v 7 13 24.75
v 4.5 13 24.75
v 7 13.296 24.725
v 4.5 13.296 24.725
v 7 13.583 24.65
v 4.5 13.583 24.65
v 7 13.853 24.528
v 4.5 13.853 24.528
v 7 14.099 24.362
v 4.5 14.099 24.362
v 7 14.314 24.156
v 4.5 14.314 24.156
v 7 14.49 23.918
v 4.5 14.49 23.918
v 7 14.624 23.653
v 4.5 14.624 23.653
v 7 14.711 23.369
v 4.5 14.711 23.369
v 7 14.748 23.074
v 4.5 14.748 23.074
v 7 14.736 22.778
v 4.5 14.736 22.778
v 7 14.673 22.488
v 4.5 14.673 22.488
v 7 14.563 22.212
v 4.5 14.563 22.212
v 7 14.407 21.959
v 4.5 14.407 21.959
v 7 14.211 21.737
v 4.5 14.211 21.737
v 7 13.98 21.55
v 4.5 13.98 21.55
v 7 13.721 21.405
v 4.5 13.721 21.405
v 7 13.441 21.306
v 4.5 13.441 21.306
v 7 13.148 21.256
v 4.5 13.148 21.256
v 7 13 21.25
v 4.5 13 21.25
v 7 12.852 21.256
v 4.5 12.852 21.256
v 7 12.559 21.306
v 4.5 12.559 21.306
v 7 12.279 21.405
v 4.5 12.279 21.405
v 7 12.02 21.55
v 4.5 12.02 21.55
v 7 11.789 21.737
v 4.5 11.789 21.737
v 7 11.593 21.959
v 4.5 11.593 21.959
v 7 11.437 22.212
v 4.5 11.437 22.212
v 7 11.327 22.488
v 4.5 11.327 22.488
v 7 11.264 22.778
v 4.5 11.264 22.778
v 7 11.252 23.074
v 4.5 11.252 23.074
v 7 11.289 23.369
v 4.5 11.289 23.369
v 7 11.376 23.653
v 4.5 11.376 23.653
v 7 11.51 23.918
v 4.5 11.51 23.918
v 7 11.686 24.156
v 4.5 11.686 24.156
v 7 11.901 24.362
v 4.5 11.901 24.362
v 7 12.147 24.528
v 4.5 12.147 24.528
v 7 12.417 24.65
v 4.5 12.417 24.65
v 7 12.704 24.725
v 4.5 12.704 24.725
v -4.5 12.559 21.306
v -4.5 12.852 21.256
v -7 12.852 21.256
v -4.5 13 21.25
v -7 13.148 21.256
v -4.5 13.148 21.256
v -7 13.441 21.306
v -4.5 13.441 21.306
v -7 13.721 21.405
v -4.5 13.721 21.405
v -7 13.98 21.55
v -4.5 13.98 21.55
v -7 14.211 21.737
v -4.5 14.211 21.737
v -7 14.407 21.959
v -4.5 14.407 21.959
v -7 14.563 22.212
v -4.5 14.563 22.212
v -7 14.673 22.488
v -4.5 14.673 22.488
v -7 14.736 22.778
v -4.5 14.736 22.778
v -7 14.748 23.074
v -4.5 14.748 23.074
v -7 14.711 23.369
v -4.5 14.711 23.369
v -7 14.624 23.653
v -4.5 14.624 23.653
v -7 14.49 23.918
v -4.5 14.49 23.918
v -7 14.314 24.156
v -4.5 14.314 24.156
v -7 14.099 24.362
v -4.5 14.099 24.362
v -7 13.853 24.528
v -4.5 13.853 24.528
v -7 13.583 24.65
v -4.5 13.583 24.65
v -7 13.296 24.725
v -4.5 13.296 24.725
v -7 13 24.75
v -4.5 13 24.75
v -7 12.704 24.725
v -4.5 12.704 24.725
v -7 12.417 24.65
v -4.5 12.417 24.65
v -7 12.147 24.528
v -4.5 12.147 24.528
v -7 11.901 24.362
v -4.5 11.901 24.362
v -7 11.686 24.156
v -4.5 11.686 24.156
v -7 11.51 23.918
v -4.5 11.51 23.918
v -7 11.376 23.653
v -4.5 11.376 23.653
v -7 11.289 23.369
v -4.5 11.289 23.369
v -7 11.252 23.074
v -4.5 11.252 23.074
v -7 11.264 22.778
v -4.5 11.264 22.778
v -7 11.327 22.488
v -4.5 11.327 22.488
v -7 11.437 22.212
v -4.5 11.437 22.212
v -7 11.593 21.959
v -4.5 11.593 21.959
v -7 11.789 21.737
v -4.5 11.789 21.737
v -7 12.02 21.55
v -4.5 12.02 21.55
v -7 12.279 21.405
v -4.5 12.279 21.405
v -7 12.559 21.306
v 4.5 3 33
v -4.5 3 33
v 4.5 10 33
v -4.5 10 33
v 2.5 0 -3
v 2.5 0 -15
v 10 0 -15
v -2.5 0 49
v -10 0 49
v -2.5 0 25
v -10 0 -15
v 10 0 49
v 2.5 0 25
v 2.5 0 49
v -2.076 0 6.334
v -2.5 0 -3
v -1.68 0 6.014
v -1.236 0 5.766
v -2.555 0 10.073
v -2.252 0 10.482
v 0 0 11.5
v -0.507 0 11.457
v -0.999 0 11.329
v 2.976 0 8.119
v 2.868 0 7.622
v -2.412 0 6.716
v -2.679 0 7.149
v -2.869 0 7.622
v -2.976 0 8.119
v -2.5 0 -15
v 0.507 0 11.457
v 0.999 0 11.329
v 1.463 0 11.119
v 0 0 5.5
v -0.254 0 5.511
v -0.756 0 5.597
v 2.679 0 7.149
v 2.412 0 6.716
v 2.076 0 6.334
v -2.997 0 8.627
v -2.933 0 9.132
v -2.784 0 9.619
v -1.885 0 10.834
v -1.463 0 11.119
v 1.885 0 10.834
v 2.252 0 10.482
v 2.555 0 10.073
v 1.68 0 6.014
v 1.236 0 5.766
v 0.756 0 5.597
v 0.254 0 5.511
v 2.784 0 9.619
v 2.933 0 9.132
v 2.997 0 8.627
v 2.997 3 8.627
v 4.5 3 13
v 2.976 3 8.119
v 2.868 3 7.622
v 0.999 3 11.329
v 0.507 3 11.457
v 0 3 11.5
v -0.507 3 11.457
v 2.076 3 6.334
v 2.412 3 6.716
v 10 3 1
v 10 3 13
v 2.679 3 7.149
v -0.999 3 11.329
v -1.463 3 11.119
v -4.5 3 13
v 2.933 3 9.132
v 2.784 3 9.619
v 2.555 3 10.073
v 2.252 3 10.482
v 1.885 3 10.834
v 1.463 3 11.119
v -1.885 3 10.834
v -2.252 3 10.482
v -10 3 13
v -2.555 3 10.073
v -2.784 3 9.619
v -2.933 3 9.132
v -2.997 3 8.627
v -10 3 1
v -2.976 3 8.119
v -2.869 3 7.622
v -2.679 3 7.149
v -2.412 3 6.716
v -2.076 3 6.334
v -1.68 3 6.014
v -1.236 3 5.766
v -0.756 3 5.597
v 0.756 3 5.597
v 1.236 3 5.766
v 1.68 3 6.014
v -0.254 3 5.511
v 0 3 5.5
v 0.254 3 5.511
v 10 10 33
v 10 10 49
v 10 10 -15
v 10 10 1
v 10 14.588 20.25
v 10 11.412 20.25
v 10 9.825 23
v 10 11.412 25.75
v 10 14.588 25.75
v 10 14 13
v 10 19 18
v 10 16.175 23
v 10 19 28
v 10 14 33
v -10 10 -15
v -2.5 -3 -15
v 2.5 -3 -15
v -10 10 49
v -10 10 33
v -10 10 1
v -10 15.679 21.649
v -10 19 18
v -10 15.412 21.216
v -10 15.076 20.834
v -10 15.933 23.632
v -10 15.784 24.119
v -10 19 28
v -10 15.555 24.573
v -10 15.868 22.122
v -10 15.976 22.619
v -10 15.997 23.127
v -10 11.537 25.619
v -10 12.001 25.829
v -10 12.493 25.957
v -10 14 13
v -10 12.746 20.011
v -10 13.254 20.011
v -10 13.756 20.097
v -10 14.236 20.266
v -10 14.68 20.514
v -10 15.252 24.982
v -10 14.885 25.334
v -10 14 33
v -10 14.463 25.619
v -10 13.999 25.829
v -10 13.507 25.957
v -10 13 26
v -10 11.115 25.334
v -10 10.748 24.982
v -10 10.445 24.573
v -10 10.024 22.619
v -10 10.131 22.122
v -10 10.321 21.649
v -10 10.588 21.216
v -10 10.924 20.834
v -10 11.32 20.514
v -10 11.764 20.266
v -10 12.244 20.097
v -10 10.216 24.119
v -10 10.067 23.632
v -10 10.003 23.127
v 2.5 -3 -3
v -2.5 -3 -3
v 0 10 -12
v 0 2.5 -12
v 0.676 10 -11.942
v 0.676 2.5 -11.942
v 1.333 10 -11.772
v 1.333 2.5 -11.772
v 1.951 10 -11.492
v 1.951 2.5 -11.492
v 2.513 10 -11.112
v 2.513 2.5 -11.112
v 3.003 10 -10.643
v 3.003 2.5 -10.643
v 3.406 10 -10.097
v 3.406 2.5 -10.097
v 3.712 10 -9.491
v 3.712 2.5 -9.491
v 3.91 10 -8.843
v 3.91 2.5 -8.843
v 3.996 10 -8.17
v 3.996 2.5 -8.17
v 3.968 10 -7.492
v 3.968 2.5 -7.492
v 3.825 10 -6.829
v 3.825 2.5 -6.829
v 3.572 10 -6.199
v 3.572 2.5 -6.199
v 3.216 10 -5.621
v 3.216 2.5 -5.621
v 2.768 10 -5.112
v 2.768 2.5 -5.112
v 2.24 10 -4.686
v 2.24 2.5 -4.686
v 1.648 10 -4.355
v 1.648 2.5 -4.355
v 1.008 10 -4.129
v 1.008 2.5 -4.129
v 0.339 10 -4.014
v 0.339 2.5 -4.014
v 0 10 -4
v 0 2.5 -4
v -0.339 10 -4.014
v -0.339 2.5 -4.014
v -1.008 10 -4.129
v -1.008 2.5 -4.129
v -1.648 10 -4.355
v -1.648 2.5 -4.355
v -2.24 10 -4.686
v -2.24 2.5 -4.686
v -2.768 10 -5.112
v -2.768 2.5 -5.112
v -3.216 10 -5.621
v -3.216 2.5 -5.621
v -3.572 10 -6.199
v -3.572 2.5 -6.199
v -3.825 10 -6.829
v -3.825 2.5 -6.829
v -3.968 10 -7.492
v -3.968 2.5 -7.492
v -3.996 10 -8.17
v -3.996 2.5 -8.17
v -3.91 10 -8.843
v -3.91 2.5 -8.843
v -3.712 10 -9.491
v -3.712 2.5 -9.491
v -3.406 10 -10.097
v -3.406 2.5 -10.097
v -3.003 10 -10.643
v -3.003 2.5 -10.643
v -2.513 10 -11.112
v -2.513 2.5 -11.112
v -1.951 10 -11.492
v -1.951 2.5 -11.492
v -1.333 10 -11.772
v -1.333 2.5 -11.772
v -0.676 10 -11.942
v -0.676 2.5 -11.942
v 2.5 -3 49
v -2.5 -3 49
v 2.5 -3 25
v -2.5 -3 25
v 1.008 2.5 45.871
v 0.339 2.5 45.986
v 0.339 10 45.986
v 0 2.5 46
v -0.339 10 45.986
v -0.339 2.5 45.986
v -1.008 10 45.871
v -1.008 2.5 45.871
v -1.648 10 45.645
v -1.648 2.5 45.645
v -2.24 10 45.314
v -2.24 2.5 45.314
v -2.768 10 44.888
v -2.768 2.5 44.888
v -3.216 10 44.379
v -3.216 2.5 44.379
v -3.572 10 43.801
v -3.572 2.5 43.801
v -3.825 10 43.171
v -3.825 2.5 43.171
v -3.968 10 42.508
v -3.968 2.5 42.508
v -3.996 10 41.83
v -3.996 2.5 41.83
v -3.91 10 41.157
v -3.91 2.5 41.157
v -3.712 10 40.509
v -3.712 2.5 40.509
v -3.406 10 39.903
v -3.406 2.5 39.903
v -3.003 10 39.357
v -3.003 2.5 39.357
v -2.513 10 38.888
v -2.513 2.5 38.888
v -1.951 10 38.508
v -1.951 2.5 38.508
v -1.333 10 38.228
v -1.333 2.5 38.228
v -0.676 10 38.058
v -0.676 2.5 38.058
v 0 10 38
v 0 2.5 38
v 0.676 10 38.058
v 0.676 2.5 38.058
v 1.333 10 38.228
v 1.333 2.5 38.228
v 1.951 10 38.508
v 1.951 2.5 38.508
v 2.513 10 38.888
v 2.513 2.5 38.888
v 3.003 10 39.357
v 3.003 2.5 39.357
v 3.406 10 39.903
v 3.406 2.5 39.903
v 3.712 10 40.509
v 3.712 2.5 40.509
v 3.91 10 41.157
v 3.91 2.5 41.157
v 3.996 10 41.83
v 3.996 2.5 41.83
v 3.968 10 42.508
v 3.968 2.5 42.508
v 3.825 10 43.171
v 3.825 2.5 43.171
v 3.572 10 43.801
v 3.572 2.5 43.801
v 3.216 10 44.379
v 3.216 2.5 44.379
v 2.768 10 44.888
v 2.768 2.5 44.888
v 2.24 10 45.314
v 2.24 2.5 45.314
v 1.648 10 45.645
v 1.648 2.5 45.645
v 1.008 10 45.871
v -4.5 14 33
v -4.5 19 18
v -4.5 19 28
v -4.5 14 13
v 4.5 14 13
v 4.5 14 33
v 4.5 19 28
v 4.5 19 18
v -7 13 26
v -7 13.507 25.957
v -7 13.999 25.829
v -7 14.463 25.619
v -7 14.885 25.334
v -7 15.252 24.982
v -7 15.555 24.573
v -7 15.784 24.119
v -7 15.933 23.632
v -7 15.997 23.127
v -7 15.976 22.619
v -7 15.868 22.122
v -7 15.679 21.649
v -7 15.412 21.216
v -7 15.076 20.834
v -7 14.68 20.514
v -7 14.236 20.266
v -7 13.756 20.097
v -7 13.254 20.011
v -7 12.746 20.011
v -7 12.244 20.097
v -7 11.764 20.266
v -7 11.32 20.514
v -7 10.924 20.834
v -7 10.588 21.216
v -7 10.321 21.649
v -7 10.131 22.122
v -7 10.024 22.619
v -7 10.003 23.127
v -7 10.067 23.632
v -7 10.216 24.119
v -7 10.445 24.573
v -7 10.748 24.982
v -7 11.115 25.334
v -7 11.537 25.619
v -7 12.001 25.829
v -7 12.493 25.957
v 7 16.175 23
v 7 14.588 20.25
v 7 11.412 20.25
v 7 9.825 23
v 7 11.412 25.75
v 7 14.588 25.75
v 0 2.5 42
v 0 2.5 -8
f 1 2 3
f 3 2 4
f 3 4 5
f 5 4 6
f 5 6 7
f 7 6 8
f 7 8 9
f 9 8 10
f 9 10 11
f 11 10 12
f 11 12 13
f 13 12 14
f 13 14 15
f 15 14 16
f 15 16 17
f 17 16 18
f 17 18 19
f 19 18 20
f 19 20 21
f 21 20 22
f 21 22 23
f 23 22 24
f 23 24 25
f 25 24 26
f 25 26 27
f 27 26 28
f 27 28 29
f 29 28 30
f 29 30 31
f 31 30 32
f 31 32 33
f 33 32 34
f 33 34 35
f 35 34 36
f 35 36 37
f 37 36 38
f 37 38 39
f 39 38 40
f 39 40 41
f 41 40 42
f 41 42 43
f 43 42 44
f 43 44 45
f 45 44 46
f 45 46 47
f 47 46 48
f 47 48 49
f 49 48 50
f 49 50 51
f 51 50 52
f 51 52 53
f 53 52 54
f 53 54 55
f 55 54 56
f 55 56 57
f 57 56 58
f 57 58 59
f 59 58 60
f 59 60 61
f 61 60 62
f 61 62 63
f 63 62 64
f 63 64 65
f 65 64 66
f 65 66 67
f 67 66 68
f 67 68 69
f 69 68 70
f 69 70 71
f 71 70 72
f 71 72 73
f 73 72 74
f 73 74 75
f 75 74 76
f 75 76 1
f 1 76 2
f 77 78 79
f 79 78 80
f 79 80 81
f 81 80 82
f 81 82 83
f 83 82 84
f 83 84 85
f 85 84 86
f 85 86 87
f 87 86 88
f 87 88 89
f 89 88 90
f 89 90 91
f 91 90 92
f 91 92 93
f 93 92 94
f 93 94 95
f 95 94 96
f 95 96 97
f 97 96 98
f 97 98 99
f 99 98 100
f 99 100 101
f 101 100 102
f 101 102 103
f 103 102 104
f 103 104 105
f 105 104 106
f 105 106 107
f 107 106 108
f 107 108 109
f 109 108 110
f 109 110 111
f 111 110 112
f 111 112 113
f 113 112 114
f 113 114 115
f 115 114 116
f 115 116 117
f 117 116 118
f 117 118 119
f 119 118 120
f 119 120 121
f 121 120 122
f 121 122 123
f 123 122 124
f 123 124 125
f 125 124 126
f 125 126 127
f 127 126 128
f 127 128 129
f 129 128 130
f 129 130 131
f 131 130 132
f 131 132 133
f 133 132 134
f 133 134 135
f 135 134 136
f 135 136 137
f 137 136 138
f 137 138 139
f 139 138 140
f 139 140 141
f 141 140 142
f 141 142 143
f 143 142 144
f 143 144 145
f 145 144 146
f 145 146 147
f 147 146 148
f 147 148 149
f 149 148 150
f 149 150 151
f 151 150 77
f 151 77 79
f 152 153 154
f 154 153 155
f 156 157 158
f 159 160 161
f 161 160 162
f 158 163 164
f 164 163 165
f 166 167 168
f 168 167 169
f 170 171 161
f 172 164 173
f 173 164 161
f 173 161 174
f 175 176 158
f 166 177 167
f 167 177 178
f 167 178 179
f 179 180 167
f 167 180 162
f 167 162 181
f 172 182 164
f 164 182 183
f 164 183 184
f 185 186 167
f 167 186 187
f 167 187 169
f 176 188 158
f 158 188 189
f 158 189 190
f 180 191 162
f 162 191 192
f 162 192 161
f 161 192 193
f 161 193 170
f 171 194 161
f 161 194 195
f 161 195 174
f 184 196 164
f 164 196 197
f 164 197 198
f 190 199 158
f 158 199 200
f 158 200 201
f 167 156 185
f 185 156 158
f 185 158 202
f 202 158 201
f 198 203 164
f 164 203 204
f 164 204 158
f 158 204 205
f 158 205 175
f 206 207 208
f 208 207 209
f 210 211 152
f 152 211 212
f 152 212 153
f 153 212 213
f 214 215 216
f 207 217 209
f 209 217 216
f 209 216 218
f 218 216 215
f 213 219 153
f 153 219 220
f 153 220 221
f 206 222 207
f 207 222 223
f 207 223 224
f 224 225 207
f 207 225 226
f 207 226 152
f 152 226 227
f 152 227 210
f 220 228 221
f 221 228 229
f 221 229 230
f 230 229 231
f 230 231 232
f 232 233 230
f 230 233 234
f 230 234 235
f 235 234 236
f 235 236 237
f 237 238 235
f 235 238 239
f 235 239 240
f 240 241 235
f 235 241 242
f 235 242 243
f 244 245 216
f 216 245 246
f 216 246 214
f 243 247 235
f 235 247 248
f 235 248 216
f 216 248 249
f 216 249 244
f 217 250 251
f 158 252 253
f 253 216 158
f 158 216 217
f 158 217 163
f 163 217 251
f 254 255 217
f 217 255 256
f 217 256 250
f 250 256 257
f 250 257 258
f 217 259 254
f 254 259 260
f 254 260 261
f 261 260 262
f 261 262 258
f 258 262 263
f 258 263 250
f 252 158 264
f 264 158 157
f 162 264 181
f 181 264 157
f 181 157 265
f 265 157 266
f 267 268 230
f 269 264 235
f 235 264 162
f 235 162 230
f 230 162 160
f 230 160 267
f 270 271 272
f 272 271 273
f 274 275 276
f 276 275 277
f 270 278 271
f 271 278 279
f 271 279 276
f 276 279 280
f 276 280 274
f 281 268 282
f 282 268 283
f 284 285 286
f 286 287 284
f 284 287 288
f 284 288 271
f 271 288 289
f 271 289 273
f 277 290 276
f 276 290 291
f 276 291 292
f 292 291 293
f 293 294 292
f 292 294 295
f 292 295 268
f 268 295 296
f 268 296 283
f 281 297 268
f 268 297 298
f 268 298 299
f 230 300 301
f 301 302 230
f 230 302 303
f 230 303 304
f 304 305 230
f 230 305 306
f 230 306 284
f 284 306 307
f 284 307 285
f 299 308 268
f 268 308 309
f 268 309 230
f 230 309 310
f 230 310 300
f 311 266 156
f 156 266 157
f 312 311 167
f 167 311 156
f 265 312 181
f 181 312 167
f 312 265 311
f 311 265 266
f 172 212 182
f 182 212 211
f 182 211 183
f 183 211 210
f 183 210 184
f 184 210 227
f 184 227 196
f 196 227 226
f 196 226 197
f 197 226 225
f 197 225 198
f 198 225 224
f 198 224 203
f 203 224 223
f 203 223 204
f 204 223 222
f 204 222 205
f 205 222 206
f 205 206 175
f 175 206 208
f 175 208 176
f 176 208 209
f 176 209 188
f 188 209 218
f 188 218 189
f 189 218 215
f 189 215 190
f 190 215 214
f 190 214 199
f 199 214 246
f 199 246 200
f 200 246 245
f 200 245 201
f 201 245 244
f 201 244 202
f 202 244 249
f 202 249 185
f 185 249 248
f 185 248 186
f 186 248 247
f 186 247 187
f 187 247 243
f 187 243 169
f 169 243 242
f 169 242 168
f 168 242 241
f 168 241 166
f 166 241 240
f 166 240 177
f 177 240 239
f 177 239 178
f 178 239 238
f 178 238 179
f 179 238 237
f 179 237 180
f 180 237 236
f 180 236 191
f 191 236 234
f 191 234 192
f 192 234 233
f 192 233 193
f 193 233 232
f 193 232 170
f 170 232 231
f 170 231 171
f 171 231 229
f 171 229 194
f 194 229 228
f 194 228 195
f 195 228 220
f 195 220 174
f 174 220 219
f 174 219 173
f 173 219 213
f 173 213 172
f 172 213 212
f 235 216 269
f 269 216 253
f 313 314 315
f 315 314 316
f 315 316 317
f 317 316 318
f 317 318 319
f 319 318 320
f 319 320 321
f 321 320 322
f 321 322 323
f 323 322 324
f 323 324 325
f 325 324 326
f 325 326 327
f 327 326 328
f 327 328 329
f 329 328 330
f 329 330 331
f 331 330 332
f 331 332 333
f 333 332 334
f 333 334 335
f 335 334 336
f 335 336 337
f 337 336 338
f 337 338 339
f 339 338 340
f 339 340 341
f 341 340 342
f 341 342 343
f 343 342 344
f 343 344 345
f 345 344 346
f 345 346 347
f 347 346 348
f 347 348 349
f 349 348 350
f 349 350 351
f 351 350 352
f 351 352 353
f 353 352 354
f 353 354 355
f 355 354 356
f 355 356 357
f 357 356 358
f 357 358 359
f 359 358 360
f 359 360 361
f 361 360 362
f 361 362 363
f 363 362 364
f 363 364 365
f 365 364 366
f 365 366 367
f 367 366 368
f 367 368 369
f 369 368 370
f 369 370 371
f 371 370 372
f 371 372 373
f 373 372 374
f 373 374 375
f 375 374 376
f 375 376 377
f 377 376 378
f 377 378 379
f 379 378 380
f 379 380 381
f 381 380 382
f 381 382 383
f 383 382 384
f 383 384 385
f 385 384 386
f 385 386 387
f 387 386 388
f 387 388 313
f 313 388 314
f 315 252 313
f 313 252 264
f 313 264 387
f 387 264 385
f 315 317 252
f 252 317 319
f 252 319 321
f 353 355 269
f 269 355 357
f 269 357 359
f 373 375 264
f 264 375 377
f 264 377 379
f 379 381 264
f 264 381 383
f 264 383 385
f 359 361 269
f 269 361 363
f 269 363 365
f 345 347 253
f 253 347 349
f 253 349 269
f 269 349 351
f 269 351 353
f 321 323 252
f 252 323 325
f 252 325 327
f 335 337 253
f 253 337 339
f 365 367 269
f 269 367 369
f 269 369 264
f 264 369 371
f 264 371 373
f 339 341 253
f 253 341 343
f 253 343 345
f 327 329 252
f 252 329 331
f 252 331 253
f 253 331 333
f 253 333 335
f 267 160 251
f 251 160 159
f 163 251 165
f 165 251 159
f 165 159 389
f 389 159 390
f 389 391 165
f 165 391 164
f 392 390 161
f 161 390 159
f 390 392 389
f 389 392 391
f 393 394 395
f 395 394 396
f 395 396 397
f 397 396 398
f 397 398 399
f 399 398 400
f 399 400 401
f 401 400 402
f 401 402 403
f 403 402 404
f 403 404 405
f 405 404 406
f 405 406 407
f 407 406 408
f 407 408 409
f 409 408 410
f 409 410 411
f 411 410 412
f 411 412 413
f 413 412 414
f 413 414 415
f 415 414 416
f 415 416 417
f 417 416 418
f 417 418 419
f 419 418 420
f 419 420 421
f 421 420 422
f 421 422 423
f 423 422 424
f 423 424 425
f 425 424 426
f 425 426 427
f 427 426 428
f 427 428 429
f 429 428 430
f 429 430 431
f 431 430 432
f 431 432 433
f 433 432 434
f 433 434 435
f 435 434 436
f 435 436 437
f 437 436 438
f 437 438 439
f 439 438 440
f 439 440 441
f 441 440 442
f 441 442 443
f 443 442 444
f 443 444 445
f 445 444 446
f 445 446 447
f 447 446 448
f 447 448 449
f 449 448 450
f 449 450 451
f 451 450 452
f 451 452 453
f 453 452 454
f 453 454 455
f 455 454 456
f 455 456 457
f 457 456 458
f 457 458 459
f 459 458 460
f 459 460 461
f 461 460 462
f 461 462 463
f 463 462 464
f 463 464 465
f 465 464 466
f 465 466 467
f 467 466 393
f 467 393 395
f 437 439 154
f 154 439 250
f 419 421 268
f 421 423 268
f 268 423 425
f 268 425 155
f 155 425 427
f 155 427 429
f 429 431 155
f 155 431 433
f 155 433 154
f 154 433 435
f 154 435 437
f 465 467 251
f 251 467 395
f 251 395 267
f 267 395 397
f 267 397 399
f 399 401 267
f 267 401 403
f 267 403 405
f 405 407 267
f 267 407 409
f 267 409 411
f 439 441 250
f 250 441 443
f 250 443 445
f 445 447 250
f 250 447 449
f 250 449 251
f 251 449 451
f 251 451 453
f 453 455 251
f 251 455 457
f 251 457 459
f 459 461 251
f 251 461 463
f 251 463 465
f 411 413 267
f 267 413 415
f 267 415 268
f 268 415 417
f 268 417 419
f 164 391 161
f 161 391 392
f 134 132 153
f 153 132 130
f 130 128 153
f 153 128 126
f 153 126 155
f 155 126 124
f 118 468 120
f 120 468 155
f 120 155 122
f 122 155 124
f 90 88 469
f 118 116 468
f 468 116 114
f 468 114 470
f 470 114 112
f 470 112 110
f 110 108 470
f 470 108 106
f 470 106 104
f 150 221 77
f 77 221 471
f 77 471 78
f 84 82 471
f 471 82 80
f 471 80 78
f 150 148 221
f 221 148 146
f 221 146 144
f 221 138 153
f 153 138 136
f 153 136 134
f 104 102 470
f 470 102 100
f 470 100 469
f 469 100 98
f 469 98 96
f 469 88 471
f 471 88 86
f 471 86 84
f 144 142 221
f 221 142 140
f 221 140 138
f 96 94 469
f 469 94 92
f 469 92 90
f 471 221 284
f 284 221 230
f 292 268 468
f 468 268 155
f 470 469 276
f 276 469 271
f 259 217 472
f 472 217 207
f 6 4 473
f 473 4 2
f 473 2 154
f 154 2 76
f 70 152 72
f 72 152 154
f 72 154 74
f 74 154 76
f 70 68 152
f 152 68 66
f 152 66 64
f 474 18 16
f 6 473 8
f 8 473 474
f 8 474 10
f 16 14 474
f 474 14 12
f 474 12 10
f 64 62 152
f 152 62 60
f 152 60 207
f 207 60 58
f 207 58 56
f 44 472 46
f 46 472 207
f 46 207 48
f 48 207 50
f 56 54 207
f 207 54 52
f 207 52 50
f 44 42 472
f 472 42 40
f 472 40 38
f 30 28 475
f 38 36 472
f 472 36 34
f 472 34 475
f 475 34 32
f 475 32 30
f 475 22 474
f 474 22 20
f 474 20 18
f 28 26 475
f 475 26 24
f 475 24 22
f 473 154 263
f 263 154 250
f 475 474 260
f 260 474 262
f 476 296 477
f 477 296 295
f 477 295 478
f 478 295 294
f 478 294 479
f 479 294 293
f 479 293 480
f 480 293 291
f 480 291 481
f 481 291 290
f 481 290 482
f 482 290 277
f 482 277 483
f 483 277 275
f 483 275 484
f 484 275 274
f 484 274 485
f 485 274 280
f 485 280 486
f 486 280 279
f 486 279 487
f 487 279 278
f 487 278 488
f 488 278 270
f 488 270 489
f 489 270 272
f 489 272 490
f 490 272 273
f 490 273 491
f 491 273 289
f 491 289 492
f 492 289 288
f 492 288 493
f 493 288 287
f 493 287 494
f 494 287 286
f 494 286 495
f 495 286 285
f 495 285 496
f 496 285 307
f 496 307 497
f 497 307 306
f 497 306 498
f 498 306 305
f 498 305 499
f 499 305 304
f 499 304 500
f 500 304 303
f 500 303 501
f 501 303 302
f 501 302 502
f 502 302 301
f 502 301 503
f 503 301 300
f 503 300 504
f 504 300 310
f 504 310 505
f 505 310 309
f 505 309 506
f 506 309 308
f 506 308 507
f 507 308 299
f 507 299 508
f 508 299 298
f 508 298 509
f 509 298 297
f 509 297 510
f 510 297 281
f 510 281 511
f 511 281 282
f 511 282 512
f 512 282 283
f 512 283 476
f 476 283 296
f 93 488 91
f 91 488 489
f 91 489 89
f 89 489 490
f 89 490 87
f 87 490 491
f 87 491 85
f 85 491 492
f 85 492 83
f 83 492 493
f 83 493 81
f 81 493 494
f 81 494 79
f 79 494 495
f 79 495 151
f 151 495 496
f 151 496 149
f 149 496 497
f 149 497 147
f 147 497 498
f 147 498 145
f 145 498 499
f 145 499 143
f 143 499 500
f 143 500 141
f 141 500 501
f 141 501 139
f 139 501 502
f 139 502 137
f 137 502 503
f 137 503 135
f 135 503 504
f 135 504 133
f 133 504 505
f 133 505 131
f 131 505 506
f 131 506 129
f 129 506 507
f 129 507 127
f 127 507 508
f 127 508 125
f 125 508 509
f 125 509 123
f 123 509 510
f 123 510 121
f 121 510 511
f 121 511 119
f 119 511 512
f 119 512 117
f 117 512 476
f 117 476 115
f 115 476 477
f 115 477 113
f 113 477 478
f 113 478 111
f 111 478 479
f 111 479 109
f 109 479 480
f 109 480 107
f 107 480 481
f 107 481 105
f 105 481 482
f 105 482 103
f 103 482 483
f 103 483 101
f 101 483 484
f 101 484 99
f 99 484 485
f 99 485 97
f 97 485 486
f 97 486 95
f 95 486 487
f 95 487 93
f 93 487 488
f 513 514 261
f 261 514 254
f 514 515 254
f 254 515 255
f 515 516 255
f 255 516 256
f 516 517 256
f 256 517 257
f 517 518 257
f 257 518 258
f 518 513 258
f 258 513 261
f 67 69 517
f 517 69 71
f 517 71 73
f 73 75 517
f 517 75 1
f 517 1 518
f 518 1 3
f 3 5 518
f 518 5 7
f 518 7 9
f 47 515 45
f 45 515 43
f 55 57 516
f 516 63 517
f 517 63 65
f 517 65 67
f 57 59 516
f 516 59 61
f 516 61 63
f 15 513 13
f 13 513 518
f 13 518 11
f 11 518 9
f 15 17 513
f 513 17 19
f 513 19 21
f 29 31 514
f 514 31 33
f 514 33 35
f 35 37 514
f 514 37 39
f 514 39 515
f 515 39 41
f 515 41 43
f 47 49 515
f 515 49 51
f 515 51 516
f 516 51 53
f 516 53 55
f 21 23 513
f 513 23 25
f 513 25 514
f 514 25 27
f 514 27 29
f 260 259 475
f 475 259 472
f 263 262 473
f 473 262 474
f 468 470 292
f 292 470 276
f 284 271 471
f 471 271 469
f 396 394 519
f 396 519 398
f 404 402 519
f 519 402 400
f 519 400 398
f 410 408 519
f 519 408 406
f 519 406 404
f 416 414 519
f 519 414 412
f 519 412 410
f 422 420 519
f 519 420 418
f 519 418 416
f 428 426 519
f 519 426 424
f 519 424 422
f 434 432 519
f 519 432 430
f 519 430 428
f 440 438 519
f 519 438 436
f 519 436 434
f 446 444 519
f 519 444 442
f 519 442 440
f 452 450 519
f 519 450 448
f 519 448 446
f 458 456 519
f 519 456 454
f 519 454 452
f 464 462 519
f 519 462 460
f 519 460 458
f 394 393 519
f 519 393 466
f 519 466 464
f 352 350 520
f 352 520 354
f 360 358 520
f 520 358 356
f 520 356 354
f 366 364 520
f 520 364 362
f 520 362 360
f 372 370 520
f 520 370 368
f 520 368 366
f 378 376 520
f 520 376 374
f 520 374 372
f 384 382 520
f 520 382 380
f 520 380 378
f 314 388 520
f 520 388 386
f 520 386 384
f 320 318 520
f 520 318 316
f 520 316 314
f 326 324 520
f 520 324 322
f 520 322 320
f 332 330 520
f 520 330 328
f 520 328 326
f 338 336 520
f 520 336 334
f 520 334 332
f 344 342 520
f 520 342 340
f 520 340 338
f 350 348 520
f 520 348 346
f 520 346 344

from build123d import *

# Parameters (mm, degrees)
SKETCH1_W               = 20
SKETCH1_H               = 30
BOSS_EXTRUDE1_DEPTH     = 3
SKETCH2_W               = 5
SKETCH2_H               = 12
BOSS_EXTRUDE2_DEPTH     = 3
SKETCH3_R               = 7
SKETCH3_R_2             = 4
BOSS_EXTRUDE3_DEPTH     = 7
SKETCH4_R               = 4
BOSS_EXTRUDE4_DEPTH     = 1
CUT_EXTRUDE1_DEPTH      = 20.339079606
CUT_EXTRUDE1_DEPTH_BACK = 20.339079606
SKETCH5_R               = 3
SKETCH6_R               = 7
SKETCH6_R_2             = 4
BOSS_EXTRUDE6_DEPTH     = 7
SKETCH7_W               = 20
SKETCH7_H               = 3
BOSS_EXTRUDE7_DEPTH     = 19
SKETCH8_W               = 5
SKETCH8_H               = 3
BOSS_EXTRUDE8_DEPTH     = 12
SKETCH10_W              = 5.5
SKETCH10_H              = 20
BOSS_EXTRUDE9_DEPTH     = 16
CUT_EXTRUDE2_DEPTH      = 57.231663678
CUT_EXTRUDE2_DEPTH_BACK = 57.231663678
SKETCH11_R              = 1.75
SKETCH12_R              = 3
SKETCH12_R_2            = 1.75
CUT_EXTRUDE3_DEPTH      = 3
CUT_EXTRUDE4_START      = -3
SKETCH13_R              = 1.75
CUT_EXTRUDE4_DEPTH      = 3
CHAMFER2_SIZE           = 5
CUT_EXTRUDE5_START      = -1.5
SKETCH14_R              = 4
CUT_EXTRUDE5_DEPTH      = 1.5


with BuildPart() as part:
    # Sketch1 → Boss-Extrude1 (new body)
    with BuildSketch(Plane(origin=(0, 0, 0), x_dir=(1, 0, 0), z_dir=(0, 1, 0))):
        Rectangle(SKETCH1_W, SKETCH1_H)
    boss_extrude1 = extrude(amount=BOSS_EXTRUDE1_DEPTH)

    # Sketch2 → Boss-Extrude2 (add)
    with BuildSketch(Plane.XZ):
        with Locations((0, -9)):
            Rectangle(SKETCH2_W, SKETCH2_H)
    boss_extrude2 = extrude(amount=BOSS_EXTRUDE2_DEPTH)

    # Sketch3 → Boss-Extrude3 (add)
    with BuildSketch(Plane(origin=(0, 3, 0), x_dir=(1, 0, 0), z_dir=(0, 1, 0))):
        with Locations(Location((0, 8, 0), (0, 0, 90))):
            Circle(SKETCH3_R)
        with Locations(Location((0, 8, 0), (0, 0, 270))):
            Circle(SKETCH3_R_2, mode=Mode.SUBTRACT)
    boss_extrude3 = extrude(amount=BOSS_EXTRUDE3_DEPTH)

    # Sketch4 → Boss-Extrude4 (add)
    with BuildSketch(Plane(origin=(0, 3, 0), x_dir=(1, 0, 0), z_dir=(0, 1, 0))):
        with Locations(Location((0, 8, 0), (0, 0, 270))):
            Circle(SKETCH4_R)
    boss_extrude4 = extrude(amount=BOSS_EXTRUDE4_DEPTH)

    # Sketch5 → Cut-Extrude1 (cut, two sides: drawn at the far end of the back side and taken through both)
    with BuildSketch(Plane(origin=(0, 3, 0), x_dir=(1, 0, 0), z_dir=(0, 1, 0)).offset(-CUT_EXTRUDE1_DEPTH_BACK)):
        with Locations(Location((0, -8.5, 0), (0, 0, 90))):
            Circle(SKETCH5_R)
    extrude(amount=CUT_EXTRUDE1_DEPTH + CUT_EXTRUDE1_DEPTH_BACK, mode=Mode.SUBTRACT)

    # Sketch6 → Boss-Extrude6 (add)
    # profile 1 of 2: a face of its own
    with BuildSketch(Plane(origin=(0, 3, 0), x_dir=(1, 0, 0), z_dir=(0, 1, 0))):
        Polygon((0, 15), (-10, 15), (-10, -1), (10, -1), (10, 15), align=None)
        with BuildLine():
            ThreePointArc((7, 8), (-4.949747468, 3.050252532), (0, 15))
            ThreePointArc((0, 15), (4.949747468, 12.949747468), (7, 8))
        make_face(mode=Mode.SUBTRACT)
    # profile 2 of 2: a face of its own
    with BuildSketch(Plane(origin=(0, 3, 0), x_dir=(1, 0, 0), z_dir=(0, 1, 0))):
        with Locations((0, 8)):
            Circle(SKETCH6_R)
        with Locations(Location((0, 8, 0), (0, 0, 270))):
            Circle(SKETCH6_R_2, mode=Mode.SUBTRACT)
    boss_extrude6 = extrude(amount=BOSS_EXTRUDE6_DEPTH)

    # Sketch7 → Boss-Extrude7 (add)
    with BuildSketch(Plane.XY.offset(15)):
        with Locations((0, 1.5)):
            Rectangle(SKETCH7_W, SKETCH7_H)
    extrude(amount=BOSS_EXTRUDE7_DEPTH)

    # Mirror3: Boss-Extrude1, Boss-Extrude2, Boss-Extrude3, Boss-Extrude4, Boss-Extrude6 across plane
    add(boss_extrude1.mirror(Plane.XY.offset(17)))
    add(boss_extrude2.mirror(Plane.XY.offset(17)))
    add(boss_extrude3.mirror(Plane.XY.offset(17)))
    add(boss_extrude4.mirror(Plane.XY.offset(17)))
    add(boss_extrude6.mirror(Plane.XY.offset(17)))

    # Sketch8 → Boss-Extrude8 (add)
    with BuildSketch(Plane(origin=(0, 0, 37), x_dir=(-1, 0, 0), z_dir=(0, 0, -1))):
        with Locations((0, -1.5)):
            Rectangle(SKETCH8_W, SKETCH8_H)
    extrude(amount=BOSS_EXTRUDE8_DEPTH)

    # Sketch10 → Boss-Extrude9 (add)
    with BuildSketch(Plane(origin=(0, 3, 0), x_dir=(1, 0, 0), z_dir=(0, 1, 0))):
        with Locations((-7.25, -23)):
            Rectangle(SKETCH10_W, SKETCH10_H)
        with Locations((7.25, -23)):
            Rectangle(SKETCH10_W, SKETCH10_H)
    extrude(amount=BOSS_EXTRUDE9_DEPTH)

    # Sketch11 → Cut-Extrude2 (cut, two sides: drawn at the far end of the back side and taken through both)
    with BuildSketch(Plane.ZY.offset(10).offset(-CUT_EXTRUDE2_DEPTH_BACK)):
        with Locations((23, 13)):
            Circle(SKETCH11_R)
    extrude(amount=CUT_EXTRUDE2_DEPTH + CUT_EXTRUDE2_DEPTH_BACK, mode=Mode.SUBTRACT)

    # Sketch12 → Cut-Extrude3 (cut)
    with BuildSketch(Plane.ZY.offset(10)):
        with Locations((23, 13)):
            Circle(SKETCH12_R)
        with Locations((23, 13)):
            Circle(SKETCH12_R_2, mode=Mode.SUBTRACT)
    extrude(amount=-CUT_EXTRUDE3_DEPTH, mode=Mode.SUBTRACT)

    # Sketch13 → Cut-Extrude4 (cut)
    with BuildSketch(Plane(origin=(10, 0, 0), x_dir=(0, 0, -1), z_dir=(1, 0, 0)).offset(CUT_EXTRUDE4_START)):
        Polygon((-23, 16.175426481), (-25.75, 14.58771324), (-25.75, 11.41228676), (-23, 9.824573519), (-20.25, 11.41228676), (-20.25, 14.58771324), align=None)
        with Locations((-23, 13)):
            Circle(SKETCH13_R, mode=Mode.SUBTRACT)
    extrude(amount=CUT_EXTRUDE4_DEPTH, mode=Mode.SUBTRACT)

    # Chamfer2
    chamfer2_edges = [part.edges().sort_by_distance(p)[0] for p in [
        (-7.25, 19, 13),
        (-7.25, 19, 33),
        (7.25, 19, 13),
        (7.25, 19, 33),
    ]]
    chamfer(chamfer2_edges, length=CHAMFER2_SIZE)

    # Sketch14 → Cut-Extrude5 (cut)
    with BuildSketch(Plane(origin=(0, 4, 0), x_dir=(1, 0, 0), z_dir=(0, 1, 0)).offset(CUT_EXTRUDE5_START)):
        with Locations(Location((0, -42, 0), (0, 0, 90))):
            Circle(SKETCH14_R)
        with Locations(Location((0, 8, 0), (0, 0, 270))):
            Circle(SKETCH14_R)
    extrude(amount=CUT_EXTRUDE5_DEPTH, mode=Mode.SUBTRACT)


solid = part.part
